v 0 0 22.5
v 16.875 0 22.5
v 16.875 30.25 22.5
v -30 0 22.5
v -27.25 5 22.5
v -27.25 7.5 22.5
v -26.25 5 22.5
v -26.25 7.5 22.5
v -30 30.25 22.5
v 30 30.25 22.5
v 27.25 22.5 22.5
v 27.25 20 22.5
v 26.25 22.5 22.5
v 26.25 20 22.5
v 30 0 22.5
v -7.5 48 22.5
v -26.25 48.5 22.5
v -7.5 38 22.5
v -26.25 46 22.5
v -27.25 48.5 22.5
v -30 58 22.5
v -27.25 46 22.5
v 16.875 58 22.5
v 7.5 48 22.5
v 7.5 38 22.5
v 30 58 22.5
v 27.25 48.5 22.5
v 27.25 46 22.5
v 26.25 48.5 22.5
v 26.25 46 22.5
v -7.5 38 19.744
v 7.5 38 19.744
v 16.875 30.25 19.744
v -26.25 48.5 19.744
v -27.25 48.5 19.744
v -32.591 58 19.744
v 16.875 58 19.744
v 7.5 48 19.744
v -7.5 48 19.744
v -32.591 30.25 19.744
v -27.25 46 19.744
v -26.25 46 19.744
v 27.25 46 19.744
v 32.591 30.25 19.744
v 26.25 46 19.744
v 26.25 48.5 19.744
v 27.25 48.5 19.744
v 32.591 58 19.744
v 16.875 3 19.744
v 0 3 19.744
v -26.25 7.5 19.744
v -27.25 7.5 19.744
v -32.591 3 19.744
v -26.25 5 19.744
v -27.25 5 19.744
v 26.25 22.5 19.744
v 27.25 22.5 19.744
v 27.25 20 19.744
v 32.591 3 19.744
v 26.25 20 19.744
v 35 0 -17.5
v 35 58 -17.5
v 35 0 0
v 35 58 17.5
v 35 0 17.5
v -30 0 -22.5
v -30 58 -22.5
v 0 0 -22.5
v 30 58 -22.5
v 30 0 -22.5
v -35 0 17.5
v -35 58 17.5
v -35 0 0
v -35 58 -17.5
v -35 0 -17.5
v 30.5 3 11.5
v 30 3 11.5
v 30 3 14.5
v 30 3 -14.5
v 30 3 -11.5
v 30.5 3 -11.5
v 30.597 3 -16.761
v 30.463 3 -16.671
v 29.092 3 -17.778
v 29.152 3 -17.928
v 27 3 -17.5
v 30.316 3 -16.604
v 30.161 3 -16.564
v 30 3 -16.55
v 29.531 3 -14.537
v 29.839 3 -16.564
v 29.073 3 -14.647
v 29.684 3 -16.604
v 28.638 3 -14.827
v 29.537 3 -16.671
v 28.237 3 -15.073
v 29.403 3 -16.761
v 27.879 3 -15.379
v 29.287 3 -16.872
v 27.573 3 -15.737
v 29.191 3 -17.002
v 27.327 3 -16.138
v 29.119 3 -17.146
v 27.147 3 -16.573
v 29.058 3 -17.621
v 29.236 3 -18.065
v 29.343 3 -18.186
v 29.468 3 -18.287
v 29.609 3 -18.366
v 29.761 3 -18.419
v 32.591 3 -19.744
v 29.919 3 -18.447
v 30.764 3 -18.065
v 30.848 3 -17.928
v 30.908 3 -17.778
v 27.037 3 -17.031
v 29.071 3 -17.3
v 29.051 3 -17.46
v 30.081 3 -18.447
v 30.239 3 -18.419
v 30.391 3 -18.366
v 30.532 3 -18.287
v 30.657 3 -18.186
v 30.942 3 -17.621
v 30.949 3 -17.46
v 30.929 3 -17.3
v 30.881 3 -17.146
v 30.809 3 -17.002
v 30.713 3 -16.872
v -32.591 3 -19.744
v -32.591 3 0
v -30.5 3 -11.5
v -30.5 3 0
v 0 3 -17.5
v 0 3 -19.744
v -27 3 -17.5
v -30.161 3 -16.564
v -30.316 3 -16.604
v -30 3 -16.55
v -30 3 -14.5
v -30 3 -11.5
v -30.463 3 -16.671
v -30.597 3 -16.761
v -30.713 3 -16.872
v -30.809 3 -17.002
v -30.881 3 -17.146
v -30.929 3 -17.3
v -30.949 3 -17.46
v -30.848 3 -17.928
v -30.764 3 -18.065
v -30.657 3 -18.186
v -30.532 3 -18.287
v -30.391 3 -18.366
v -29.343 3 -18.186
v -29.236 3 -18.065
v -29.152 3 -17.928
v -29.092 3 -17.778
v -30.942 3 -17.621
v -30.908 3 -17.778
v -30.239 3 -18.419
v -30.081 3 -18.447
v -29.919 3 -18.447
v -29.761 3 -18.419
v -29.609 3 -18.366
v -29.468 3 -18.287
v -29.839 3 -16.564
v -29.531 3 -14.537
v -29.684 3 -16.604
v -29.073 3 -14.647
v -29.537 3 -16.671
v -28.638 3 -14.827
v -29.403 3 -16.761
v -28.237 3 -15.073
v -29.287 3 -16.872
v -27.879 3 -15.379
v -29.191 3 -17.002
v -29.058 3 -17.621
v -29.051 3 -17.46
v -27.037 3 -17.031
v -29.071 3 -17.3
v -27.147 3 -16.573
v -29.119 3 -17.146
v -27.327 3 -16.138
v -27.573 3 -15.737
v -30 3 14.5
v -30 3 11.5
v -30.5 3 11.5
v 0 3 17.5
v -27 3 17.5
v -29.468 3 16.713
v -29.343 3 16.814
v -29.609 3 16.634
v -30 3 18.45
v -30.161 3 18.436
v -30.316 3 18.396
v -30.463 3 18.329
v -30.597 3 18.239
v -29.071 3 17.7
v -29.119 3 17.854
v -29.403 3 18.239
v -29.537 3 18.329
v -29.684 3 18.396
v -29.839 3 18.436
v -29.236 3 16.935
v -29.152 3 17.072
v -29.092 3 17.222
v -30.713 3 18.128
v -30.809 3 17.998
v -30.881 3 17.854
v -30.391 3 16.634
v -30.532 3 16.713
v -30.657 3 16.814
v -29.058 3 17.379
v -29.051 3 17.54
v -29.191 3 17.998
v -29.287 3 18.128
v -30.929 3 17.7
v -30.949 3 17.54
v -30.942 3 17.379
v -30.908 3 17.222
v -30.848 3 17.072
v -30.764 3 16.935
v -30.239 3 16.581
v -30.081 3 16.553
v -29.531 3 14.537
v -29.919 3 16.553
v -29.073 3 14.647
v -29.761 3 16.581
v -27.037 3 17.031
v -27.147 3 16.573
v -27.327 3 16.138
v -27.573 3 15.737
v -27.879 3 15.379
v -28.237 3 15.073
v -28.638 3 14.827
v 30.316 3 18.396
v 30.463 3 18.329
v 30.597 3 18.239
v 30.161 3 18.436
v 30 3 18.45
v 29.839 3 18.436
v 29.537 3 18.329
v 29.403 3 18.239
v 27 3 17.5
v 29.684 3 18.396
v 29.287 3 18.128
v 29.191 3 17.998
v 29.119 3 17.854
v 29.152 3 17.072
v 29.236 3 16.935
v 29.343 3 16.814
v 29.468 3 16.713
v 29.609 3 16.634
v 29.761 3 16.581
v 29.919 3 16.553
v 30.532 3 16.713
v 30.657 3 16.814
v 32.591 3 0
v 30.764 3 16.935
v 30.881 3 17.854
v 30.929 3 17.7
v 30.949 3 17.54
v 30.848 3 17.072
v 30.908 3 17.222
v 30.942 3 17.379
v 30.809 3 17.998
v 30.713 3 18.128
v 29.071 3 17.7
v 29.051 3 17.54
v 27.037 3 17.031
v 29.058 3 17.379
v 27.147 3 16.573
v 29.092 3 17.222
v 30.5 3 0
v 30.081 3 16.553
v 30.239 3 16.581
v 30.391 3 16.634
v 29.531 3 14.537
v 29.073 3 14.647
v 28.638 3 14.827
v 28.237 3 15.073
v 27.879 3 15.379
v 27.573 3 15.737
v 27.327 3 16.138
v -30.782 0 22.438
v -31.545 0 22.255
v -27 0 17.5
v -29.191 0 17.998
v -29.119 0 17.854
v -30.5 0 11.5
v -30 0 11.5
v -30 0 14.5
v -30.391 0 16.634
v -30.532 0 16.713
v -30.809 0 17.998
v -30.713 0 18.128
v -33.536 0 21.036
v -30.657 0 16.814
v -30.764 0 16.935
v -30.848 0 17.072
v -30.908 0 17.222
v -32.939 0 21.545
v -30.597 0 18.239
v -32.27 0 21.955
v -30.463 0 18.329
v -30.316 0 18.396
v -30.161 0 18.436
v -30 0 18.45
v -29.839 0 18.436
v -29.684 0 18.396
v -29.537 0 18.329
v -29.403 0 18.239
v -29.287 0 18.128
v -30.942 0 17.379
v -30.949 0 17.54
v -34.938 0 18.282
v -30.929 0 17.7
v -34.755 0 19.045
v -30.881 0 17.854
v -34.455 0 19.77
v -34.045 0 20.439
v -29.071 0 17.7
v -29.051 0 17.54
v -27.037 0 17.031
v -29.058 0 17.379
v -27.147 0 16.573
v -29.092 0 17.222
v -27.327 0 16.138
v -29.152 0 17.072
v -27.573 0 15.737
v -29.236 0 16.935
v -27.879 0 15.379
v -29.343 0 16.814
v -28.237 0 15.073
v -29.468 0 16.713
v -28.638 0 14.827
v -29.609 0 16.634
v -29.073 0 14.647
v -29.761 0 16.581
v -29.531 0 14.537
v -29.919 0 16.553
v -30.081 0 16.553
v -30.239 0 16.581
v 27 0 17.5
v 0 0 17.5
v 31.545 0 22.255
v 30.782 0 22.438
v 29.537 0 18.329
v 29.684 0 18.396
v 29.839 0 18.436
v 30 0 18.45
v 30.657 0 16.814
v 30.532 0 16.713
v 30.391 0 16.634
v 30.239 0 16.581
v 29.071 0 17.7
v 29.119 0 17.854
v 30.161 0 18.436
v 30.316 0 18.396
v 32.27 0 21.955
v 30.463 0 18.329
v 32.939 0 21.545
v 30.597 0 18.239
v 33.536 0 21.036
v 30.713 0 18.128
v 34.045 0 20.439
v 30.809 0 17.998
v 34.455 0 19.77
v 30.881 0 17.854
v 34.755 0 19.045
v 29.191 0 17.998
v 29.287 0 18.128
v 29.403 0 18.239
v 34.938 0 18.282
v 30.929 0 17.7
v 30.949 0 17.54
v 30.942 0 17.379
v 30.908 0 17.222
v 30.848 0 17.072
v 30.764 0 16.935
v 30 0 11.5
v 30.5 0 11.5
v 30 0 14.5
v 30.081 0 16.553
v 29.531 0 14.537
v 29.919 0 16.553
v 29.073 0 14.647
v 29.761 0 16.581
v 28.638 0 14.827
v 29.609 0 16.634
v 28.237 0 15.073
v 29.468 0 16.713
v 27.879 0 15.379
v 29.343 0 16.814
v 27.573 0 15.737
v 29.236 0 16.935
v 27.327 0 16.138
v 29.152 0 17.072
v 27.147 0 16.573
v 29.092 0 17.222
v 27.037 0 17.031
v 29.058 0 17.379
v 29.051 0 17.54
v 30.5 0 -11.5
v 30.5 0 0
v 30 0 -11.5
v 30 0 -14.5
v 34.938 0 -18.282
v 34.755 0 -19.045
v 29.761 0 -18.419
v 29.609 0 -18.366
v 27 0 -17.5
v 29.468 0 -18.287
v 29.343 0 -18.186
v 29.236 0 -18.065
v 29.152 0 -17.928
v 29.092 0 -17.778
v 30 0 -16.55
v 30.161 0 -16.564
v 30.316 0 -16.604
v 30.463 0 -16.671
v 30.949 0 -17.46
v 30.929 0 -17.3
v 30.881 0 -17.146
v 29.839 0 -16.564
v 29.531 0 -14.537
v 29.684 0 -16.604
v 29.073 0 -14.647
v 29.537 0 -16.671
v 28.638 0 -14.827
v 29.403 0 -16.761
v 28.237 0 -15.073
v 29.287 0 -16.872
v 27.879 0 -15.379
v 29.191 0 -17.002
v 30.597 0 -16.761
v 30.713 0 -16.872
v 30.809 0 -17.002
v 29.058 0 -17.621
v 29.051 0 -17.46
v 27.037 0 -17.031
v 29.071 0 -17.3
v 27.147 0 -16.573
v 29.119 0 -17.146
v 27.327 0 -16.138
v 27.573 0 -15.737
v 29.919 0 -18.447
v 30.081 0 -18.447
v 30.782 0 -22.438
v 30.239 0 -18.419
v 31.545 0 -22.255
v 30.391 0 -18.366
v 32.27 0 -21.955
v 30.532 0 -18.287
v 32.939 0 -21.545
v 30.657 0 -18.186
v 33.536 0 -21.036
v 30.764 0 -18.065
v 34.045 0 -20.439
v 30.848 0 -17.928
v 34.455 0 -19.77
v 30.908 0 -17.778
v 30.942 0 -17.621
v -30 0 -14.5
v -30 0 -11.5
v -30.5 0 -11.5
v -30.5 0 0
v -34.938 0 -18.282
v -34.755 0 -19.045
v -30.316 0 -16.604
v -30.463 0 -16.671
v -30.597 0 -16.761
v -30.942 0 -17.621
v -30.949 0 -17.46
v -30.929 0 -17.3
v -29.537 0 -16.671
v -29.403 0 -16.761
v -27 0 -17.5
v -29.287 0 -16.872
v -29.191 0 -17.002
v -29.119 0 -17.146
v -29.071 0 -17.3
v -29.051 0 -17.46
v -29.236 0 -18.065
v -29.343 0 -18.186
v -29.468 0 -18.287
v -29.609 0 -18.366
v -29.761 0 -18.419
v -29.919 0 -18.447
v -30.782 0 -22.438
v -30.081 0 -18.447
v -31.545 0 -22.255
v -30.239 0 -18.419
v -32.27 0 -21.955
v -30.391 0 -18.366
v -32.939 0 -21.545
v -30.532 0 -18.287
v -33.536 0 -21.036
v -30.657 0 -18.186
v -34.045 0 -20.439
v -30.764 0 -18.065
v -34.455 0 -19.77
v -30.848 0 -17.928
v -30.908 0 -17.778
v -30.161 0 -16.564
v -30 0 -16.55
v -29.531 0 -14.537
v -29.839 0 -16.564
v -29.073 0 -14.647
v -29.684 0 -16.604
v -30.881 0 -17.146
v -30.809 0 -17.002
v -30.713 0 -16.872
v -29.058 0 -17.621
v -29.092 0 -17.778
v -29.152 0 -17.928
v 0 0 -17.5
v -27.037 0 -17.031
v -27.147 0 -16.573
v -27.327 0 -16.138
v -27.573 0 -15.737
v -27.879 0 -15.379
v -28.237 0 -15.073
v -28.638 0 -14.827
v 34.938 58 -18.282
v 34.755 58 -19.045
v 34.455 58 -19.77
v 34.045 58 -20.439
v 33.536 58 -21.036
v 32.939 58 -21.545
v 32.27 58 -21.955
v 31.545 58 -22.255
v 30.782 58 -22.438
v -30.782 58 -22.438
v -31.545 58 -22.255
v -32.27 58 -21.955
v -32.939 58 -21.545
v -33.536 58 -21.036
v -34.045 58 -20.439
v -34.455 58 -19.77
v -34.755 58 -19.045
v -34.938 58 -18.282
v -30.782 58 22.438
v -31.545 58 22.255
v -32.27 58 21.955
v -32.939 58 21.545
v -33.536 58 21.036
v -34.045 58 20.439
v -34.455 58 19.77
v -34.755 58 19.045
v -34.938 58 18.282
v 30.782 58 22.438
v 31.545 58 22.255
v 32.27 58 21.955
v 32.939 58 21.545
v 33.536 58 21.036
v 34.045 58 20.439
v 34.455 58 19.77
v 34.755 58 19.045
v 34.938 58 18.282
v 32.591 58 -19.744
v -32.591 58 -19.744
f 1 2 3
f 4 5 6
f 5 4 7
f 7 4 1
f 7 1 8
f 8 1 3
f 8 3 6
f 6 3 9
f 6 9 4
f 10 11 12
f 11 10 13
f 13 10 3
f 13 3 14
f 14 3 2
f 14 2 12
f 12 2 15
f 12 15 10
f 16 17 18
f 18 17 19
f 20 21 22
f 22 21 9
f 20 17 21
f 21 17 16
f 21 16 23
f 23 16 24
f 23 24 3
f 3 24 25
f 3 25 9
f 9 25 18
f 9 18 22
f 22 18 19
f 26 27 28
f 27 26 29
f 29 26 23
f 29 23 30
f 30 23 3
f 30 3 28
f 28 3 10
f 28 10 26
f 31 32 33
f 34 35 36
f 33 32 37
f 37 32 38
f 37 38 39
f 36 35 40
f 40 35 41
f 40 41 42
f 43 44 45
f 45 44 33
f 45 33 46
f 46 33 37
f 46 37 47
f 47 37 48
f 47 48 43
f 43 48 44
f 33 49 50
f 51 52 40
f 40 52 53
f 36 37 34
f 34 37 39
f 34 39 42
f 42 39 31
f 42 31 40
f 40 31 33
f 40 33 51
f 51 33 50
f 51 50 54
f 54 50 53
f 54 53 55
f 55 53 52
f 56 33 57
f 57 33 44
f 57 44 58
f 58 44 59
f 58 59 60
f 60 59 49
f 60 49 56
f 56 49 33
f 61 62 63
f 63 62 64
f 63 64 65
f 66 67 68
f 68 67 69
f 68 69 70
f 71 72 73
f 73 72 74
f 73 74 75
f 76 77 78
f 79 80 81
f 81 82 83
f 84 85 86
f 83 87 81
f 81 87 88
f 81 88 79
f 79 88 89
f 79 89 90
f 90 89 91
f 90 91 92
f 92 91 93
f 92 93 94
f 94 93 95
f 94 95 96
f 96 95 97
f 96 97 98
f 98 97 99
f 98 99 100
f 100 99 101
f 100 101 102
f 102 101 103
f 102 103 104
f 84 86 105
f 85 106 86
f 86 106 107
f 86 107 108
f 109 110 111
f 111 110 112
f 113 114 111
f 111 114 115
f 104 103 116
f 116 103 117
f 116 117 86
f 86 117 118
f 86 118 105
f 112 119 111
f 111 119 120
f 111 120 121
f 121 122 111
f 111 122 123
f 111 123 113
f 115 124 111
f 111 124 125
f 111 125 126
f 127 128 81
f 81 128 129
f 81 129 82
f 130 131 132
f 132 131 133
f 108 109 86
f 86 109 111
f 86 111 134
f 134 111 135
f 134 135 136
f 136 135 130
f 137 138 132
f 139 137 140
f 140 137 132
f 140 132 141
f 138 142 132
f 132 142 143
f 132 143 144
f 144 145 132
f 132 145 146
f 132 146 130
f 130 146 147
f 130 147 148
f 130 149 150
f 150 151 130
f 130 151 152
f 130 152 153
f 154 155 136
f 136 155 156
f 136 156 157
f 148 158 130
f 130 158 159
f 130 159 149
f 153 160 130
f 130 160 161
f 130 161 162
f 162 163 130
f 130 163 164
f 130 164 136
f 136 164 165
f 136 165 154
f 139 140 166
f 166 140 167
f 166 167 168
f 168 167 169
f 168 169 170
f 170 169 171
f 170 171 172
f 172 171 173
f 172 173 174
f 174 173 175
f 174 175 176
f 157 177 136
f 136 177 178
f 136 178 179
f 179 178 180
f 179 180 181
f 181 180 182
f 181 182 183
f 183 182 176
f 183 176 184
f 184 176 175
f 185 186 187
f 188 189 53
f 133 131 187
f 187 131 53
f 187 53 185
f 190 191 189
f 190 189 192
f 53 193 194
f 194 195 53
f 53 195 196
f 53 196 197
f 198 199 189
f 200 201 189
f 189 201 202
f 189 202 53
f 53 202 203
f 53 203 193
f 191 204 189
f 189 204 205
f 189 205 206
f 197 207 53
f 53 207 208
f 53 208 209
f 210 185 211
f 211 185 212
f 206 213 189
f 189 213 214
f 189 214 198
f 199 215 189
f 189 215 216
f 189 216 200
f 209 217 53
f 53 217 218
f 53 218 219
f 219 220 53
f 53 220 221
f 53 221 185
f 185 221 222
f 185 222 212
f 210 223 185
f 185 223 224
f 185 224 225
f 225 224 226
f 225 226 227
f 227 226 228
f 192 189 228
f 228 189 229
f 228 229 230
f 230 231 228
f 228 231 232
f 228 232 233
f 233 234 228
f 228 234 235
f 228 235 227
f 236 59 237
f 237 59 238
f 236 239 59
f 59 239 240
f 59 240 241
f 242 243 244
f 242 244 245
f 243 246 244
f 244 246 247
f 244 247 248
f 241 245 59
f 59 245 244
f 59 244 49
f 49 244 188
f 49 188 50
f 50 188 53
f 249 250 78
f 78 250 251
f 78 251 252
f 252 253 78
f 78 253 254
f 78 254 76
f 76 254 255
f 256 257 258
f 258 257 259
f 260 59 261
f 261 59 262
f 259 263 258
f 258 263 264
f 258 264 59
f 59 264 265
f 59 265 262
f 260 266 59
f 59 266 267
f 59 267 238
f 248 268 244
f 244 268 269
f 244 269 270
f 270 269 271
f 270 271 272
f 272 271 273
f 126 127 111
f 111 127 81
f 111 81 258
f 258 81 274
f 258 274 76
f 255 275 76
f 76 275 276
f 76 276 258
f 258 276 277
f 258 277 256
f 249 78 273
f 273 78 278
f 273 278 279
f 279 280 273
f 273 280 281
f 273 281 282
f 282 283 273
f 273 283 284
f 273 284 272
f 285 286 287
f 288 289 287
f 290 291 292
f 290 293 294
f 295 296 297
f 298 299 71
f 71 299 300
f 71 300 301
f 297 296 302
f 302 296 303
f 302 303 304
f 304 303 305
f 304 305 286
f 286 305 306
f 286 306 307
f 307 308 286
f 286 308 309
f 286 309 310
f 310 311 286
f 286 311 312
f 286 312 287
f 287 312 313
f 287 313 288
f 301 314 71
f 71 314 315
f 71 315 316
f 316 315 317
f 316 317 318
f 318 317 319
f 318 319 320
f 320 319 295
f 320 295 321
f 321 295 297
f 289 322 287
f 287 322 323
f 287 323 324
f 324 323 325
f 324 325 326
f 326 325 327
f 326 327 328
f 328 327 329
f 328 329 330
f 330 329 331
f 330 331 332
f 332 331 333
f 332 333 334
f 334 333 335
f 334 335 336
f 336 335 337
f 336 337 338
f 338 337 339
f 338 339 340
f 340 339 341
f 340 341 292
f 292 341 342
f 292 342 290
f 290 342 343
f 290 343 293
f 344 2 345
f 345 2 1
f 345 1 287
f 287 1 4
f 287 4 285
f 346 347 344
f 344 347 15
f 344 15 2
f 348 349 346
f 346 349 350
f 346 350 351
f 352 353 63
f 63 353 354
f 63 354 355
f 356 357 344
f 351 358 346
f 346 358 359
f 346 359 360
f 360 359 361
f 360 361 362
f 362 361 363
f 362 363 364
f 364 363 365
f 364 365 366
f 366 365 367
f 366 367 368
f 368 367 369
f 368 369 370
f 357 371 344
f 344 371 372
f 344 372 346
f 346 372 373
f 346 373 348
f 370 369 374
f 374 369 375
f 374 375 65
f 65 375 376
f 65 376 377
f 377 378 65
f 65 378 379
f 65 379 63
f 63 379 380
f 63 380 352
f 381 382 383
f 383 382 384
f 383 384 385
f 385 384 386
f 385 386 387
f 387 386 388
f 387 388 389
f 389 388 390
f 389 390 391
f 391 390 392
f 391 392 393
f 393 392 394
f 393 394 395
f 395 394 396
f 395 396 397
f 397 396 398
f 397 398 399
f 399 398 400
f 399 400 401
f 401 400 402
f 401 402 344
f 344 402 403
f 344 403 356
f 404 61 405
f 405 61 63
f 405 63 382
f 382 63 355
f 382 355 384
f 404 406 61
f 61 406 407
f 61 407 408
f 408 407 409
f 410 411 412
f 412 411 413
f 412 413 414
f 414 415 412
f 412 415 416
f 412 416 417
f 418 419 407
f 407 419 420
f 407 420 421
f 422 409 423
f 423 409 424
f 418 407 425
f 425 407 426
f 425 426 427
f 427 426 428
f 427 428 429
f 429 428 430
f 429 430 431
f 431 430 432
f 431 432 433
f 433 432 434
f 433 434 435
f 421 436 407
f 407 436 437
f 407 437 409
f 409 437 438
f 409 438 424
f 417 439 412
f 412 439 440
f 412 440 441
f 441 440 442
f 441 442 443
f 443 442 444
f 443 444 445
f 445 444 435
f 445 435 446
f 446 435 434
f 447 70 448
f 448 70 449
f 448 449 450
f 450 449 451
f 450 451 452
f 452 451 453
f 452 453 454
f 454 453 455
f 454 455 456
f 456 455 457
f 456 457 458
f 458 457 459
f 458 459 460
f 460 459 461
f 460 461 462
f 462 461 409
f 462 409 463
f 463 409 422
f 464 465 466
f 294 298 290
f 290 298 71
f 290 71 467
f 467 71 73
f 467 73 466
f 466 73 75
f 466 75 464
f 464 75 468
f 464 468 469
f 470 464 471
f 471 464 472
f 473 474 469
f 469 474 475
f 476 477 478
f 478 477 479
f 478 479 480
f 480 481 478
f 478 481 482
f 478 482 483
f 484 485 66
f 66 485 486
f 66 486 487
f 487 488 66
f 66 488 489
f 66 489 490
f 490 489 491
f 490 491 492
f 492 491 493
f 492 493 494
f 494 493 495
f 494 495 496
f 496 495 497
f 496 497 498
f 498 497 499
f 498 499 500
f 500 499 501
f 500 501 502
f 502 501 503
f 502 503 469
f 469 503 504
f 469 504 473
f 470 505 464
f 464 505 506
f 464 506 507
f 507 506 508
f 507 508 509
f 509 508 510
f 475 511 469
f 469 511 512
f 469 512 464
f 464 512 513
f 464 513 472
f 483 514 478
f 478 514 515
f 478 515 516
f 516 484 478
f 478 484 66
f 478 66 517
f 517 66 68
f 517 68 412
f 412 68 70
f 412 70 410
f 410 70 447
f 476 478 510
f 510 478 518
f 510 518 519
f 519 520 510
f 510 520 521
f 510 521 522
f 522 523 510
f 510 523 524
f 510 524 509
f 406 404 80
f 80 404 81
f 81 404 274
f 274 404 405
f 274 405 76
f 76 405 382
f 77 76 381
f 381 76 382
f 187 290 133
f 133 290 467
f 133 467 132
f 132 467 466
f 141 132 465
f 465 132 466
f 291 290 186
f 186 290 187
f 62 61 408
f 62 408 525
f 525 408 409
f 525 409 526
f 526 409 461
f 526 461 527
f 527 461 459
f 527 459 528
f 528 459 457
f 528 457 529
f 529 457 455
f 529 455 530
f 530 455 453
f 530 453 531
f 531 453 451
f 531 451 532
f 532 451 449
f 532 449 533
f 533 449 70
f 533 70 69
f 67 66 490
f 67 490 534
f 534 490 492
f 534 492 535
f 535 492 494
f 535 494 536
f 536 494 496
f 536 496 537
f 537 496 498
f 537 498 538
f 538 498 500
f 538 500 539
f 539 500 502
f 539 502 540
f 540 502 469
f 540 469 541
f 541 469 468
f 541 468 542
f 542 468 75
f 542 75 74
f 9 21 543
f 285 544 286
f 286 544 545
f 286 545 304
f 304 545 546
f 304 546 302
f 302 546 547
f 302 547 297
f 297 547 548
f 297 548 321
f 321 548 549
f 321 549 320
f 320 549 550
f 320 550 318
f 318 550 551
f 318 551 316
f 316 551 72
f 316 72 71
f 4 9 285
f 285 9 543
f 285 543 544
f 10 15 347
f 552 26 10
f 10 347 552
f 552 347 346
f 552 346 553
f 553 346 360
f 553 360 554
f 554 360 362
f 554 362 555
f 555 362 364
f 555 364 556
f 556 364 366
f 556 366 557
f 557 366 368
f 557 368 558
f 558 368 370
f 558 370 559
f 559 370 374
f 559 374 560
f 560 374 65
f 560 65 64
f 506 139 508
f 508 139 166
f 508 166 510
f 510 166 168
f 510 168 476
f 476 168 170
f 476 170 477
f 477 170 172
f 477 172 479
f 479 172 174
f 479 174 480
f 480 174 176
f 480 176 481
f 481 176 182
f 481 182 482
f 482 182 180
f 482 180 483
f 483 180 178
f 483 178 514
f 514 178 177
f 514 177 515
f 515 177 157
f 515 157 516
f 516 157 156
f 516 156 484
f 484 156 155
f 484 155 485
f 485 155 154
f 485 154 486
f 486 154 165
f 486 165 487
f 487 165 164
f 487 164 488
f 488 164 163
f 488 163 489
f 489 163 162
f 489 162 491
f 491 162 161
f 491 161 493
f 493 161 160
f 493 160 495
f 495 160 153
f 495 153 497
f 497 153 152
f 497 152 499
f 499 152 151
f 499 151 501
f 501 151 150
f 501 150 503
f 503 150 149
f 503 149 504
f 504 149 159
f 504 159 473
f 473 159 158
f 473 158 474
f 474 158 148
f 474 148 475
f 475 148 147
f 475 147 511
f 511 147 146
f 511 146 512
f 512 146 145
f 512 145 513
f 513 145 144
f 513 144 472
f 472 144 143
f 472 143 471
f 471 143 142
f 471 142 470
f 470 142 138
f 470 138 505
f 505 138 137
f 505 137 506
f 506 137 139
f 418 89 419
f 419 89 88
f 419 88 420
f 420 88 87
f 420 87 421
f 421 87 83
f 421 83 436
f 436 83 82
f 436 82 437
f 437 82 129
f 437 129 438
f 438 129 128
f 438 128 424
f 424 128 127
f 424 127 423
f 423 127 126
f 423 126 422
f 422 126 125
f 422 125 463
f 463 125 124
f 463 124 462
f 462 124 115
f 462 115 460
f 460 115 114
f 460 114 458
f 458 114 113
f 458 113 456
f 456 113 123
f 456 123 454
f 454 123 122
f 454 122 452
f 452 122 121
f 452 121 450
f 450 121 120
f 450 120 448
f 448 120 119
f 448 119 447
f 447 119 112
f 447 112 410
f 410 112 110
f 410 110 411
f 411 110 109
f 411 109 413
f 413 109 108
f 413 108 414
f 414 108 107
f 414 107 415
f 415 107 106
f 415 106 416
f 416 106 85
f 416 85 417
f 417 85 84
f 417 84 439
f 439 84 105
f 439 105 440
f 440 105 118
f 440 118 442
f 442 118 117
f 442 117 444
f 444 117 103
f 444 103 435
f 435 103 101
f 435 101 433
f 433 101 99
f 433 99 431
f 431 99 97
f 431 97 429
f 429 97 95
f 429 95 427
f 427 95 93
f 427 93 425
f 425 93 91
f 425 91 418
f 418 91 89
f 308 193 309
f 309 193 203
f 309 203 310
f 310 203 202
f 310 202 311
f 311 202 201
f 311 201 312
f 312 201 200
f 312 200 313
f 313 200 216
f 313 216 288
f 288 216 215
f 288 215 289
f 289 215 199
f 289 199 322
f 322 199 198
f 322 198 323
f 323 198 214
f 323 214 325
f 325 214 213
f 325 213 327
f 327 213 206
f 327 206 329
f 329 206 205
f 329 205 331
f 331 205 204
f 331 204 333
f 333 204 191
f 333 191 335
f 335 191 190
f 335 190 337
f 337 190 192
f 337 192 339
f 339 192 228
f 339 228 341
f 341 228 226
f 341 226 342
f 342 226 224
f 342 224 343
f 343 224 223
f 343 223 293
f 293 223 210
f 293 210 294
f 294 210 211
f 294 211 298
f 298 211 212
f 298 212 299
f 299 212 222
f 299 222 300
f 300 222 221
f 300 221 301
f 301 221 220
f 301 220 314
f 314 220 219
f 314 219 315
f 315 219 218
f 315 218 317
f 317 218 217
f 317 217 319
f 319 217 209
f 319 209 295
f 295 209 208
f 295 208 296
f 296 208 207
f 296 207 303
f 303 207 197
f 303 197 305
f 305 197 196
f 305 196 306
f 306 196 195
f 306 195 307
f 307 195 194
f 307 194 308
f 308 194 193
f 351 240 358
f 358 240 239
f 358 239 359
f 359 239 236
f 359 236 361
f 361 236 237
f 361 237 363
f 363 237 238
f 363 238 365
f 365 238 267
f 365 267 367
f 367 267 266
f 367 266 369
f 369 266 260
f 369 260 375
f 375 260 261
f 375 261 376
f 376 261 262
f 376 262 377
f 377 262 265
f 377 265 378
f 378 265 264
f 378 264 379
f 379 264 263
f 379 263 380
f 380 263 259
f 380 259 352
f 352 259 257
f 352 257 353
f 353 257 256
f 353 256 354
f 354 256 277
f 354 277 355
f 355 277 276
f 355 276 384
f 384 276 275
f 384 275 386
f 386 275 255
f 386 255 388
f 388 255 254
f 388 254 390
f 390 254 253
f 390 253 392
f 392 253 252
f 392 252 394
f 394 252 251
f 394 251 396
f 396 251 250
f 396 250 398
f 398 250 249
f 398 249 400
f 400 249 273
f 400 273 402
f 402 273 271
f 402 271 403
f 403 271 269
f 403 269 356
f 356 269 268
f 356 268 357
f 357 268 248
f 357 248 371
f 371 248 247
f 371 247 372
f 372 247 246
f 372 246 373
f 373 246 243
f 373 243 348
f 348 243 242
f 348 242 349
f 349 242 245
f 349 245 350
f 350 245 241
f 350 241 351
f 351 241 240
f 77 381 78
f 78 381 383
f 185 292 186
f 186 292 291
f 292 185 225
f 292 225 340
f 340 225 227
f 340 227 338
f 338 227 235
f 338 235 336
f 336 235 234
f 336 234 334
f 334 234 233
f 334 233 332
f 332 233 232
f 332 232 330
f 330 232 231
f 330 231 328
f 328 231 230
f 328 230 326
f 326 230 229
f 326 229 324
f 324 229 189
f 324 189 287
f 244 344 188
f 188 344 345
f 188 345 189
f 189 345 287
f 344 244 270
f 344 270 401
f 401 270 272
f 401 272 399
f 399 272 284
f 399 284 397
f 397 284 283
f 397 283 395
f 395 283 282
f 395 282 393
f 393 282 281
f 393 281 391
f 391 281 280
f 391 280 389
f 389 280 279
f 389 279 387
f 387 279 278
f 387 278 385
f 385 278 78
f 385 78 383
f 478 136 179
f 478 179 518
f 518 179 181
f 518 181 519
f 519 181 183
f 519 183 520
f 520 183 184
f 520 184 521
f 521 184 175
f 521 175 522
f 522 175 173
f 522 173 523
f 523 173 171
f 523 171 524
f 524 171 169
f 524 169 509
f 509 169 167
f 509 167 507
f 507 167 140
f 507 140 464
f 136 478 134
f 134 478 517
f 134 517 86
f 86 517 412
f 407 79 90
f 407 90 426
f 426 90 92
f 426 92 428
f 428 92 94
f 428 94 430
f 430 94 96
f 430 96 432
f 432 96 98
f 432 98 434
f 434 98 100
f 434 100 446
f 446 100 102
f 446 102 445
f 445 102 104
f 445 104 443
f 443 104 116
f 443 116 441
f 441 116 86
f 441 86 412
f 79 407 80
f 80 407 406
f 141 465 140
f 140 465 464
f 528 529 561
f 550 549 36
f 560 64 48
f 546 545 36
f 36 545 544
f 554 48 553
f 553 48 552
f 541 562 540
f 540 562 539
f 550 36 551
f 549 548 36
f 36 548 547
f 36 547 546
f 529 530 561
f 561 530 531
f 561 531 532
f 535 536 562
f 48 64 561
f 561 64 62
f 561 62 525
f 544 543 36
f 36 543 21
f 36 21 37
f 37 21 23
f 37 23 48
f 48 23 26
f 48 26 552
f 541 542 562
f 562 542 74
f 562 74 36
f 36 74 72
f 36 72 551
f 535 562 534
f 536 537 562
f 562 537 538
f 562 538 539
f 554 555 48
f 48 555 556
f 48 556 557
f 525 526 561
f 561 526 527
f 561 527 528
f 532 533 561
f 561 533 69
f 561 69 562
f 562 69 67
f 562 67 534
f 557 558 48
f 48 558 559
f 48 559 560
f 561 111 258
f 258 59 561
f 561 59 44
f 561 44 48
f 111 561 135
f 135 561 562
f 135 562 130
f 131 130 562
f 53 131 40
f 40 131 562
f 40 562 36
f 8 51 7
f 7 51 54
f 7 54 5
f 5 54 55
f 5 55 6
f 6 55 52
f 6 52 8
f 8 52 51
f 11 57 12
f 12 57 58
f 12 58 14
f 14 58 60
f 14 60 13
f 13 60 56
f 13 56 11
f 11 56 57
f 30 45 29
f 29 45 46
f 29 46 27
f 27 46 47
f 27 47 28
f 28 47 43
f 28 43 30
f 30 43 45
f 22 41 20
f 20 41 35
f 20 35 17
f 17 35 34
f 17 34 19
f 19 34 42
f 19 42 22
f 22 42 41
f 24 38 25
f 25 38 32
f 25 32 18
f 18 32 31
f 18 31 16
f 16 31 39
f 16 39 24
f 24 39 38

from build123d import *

# Parameters (mm, degrees)
SKETCH_1_W          = 70
SKETCH_1_H          = 45
EXTRUDE_1_DEPTH     = 3
SKETCH_2_W          = 13
SKETCH_2_H          = 23
CUT_EXTRUDE_1_DEPTH = 10
SKETCH_3_R          = 0.95
CUT_EXTRUDE_2_DEPTH = 10
FILLET_1_R          = 5
FILLET_2_R          = 5
SKETCH_4_R          = 0.95
CUT_EXTRUDE_3_DEPTH = 10
CUT_EXTRUDE_4_DEPTH = 10
SKETCH_9_W          = 65.182596022
SKETCH_9_H          = 39.488918008
EXTRUDE_2_DEPTH     = 55
SKETCH_10_W         = 1
SKETCH_10_H         = 2.5
SKETCH_10_W_2       = 15
SKETCH_10_H_2       = 10
CUT_EXTRUDE_5_DEPTH = 7


with BuildPart() as part:
    # 草图1 → 凸台-拉伸1 (new body)
    with BuildSketch(Plane(origin=(0, 0, 0), x_dir=(1, 0, 0), z_dir=(0, 1, 0))):
        Rectangle(SKETCH_1_W, SKETCH_1_H)
    extrude(amount=EXTRUDE_1_DEPTH)

    # 草图2 → 切除-拉伸1 (cut)
    with BuildSketch(Plane(origin=(0, 3, 0), x_dir=(1, 0, 0), z_dir=(0, 1, 0))):
        with Locations((24, 0)):
            Rectangle(SKETCH_2_W, SKETCH_2_H)
        with Locations((-24, 0)):
            Rectangle(SKETCH_2_W, SKETCH_2_H)
    extrude(amount=-CUT_EXTRUDE_1_DEPTH, mode=Mode.SUBTRACT)

    # 草图3 → 切除-拉伸2 (cut)
    with BuildSketch(Plane(origin=(0, 3, 0), x_dir=(1, 0, 0), z_dir=(0, 1, 0))):
        with Locations((-24, 14)):
            Circle(SKETCH_3_R)
        with Locations((-24, -14)):
            Circle(SKETCH_3_R)
        with Locations((24, 14)):
            Circle(SKETCH_3_R)
        with Locations((24, -14)):
            Circle(SKETCH_3_R)
    extrude(amount=-CUT_EXTRUDE_2_DEPTH, mode=Mode.SUBTRACT)

    # 圆角1
    fillet_1_edges = [part.edges().sort_by_distance(p)[0] for p in [
        (35, 1.5, -22.5),
    ]]
    fillet(fillet_1_edges, radius=FILLET_1_R)

    # 圆角2
    fillet_2_edges = [part.edges().sort_by_distance(p)[0] for p in [
        (35, 1.5, 22.5),
        (-35, 1.5, 22.5),
        (-35, 1.5, -22.5),
    ]]
    fillet(fillet_2_edges, radius=FILLET_2_R)

    # 草图4 → 切除-拉伸3 (cut)
    with BuildSketch(Plane(origin=(0, 3, 0), x_dir=(1, 0, 0), z_dir=(0, 1, 0))):
        with Locations((-30, 17.5)):
            Circle(SKETCH_4_R)
        with Locations((30, 17.5)):
            Circle(SKETCH_4_R)
        with Locations((-30, -17.5)):
            Circle(SKETCH_4_R)
        with Locations((30, -17.5)):
            Circle(SKETCH_4_R)
    extrude(amount=-CUT_EXTRUDE_3_DEPTH, mode=Mode.SUBTRACT)

    # 草图8 → 切除-拉伸4 (cut)
    with BuildSketch(Plane(origin=(0, 3, 0), x_dir=(1, 0, 0), z_dir=(0, 1, 0))):
        with BuildLine():
            Line((-27, 17.5), (27, 17.5))
            ThreePointArc((27, 17.5), (27.878679656, 15.378679656), (30, 14.5))
            Line((30, 14.5), (30, -14.5))
            ThreePointArc((30, -14.5), (27.878679656, -15.378679656), (27, -17.5))
            Line((27, -17.5), (-27, -17.5))
            ThreePointArc((-27, -17.5), (-27.878679656, -15.378679656), (-30, -14.5))
            Line((-30, -14.5), (-30, 14.5))
            ThreePointArc((-30, 14.5), (-27.878679656, 15.378679656), (-27, 17.5))
        make_face()
    extrude(amount=-CUT_EXTRUDE_4_DEPTH, mode=Mode.SUBTRACT)

    # 草图9 → 凸台-拉伸2 (add)
    with BuildSketch(Plane(origin=(0, 3, 0), x_dir=(1, 0, 0), z_dir=(0, 1, 0))):
        with BuildLine():
            Line((-30, -22.5), (30, -22.5))
            ThreePointArc((30, -22.5), (33.535533906, -21.035533906), (35, -17.5))
            Line((35, -17.5), (35, 17.5))
            ThreePointArc((35, 17.5), (33.535533906, 21.035533906), (30, 22.5))
            Line((30, 22.5), (-30, 22.5))
            ThreePointArc((-30, 22.5), (-33.535533906, 21.035533906), (-35, 17.5))
            Line((-35, 17.5), (-35, -17.5))
            ThreePointArc((-35, -17.5), (-33.535533906, -21.035533906), (-30, -22.5))
        make_face()
        Rectangle(SKETCH_9_W, SKETCH_9_H, mode=Mode.SUBTRACT)
    extrude(amount=EXTRUDE_2_DEPTH)

    # 草图10 → 切除-拉伸5 (cut)
    with BuildSketch(Plane(origin=(0, 0, 22.5), x_dir=(-1, 0, 0), z_dir=(0, 0, -1))):
        with Locations((26.75, 6.25)):
            Rectangle(SKETCH_10_W, SKETCH_10_H)
        with Locations((26.75, 47.25)):
            Rectangle(SKETCH_10_W, SKETCH_10_H)
        with Locations((-26.75, 21.25)):
            Rectangle(SKETCH_10_W, SKETCH_10_H)
        with Locations((-26.75, 47.25)):
            Rectangle(SKETCH_10_W, SKETCH_10_H)
        with Locations((0, 43)):
            Rectangle(SKETCH_10_W_2, SKETCH_10_H_2)
    extrude(amount=CUT_EXTRUDE_5_DEPTH, mode=Mode.SUBTRACT)


solid = part.part
